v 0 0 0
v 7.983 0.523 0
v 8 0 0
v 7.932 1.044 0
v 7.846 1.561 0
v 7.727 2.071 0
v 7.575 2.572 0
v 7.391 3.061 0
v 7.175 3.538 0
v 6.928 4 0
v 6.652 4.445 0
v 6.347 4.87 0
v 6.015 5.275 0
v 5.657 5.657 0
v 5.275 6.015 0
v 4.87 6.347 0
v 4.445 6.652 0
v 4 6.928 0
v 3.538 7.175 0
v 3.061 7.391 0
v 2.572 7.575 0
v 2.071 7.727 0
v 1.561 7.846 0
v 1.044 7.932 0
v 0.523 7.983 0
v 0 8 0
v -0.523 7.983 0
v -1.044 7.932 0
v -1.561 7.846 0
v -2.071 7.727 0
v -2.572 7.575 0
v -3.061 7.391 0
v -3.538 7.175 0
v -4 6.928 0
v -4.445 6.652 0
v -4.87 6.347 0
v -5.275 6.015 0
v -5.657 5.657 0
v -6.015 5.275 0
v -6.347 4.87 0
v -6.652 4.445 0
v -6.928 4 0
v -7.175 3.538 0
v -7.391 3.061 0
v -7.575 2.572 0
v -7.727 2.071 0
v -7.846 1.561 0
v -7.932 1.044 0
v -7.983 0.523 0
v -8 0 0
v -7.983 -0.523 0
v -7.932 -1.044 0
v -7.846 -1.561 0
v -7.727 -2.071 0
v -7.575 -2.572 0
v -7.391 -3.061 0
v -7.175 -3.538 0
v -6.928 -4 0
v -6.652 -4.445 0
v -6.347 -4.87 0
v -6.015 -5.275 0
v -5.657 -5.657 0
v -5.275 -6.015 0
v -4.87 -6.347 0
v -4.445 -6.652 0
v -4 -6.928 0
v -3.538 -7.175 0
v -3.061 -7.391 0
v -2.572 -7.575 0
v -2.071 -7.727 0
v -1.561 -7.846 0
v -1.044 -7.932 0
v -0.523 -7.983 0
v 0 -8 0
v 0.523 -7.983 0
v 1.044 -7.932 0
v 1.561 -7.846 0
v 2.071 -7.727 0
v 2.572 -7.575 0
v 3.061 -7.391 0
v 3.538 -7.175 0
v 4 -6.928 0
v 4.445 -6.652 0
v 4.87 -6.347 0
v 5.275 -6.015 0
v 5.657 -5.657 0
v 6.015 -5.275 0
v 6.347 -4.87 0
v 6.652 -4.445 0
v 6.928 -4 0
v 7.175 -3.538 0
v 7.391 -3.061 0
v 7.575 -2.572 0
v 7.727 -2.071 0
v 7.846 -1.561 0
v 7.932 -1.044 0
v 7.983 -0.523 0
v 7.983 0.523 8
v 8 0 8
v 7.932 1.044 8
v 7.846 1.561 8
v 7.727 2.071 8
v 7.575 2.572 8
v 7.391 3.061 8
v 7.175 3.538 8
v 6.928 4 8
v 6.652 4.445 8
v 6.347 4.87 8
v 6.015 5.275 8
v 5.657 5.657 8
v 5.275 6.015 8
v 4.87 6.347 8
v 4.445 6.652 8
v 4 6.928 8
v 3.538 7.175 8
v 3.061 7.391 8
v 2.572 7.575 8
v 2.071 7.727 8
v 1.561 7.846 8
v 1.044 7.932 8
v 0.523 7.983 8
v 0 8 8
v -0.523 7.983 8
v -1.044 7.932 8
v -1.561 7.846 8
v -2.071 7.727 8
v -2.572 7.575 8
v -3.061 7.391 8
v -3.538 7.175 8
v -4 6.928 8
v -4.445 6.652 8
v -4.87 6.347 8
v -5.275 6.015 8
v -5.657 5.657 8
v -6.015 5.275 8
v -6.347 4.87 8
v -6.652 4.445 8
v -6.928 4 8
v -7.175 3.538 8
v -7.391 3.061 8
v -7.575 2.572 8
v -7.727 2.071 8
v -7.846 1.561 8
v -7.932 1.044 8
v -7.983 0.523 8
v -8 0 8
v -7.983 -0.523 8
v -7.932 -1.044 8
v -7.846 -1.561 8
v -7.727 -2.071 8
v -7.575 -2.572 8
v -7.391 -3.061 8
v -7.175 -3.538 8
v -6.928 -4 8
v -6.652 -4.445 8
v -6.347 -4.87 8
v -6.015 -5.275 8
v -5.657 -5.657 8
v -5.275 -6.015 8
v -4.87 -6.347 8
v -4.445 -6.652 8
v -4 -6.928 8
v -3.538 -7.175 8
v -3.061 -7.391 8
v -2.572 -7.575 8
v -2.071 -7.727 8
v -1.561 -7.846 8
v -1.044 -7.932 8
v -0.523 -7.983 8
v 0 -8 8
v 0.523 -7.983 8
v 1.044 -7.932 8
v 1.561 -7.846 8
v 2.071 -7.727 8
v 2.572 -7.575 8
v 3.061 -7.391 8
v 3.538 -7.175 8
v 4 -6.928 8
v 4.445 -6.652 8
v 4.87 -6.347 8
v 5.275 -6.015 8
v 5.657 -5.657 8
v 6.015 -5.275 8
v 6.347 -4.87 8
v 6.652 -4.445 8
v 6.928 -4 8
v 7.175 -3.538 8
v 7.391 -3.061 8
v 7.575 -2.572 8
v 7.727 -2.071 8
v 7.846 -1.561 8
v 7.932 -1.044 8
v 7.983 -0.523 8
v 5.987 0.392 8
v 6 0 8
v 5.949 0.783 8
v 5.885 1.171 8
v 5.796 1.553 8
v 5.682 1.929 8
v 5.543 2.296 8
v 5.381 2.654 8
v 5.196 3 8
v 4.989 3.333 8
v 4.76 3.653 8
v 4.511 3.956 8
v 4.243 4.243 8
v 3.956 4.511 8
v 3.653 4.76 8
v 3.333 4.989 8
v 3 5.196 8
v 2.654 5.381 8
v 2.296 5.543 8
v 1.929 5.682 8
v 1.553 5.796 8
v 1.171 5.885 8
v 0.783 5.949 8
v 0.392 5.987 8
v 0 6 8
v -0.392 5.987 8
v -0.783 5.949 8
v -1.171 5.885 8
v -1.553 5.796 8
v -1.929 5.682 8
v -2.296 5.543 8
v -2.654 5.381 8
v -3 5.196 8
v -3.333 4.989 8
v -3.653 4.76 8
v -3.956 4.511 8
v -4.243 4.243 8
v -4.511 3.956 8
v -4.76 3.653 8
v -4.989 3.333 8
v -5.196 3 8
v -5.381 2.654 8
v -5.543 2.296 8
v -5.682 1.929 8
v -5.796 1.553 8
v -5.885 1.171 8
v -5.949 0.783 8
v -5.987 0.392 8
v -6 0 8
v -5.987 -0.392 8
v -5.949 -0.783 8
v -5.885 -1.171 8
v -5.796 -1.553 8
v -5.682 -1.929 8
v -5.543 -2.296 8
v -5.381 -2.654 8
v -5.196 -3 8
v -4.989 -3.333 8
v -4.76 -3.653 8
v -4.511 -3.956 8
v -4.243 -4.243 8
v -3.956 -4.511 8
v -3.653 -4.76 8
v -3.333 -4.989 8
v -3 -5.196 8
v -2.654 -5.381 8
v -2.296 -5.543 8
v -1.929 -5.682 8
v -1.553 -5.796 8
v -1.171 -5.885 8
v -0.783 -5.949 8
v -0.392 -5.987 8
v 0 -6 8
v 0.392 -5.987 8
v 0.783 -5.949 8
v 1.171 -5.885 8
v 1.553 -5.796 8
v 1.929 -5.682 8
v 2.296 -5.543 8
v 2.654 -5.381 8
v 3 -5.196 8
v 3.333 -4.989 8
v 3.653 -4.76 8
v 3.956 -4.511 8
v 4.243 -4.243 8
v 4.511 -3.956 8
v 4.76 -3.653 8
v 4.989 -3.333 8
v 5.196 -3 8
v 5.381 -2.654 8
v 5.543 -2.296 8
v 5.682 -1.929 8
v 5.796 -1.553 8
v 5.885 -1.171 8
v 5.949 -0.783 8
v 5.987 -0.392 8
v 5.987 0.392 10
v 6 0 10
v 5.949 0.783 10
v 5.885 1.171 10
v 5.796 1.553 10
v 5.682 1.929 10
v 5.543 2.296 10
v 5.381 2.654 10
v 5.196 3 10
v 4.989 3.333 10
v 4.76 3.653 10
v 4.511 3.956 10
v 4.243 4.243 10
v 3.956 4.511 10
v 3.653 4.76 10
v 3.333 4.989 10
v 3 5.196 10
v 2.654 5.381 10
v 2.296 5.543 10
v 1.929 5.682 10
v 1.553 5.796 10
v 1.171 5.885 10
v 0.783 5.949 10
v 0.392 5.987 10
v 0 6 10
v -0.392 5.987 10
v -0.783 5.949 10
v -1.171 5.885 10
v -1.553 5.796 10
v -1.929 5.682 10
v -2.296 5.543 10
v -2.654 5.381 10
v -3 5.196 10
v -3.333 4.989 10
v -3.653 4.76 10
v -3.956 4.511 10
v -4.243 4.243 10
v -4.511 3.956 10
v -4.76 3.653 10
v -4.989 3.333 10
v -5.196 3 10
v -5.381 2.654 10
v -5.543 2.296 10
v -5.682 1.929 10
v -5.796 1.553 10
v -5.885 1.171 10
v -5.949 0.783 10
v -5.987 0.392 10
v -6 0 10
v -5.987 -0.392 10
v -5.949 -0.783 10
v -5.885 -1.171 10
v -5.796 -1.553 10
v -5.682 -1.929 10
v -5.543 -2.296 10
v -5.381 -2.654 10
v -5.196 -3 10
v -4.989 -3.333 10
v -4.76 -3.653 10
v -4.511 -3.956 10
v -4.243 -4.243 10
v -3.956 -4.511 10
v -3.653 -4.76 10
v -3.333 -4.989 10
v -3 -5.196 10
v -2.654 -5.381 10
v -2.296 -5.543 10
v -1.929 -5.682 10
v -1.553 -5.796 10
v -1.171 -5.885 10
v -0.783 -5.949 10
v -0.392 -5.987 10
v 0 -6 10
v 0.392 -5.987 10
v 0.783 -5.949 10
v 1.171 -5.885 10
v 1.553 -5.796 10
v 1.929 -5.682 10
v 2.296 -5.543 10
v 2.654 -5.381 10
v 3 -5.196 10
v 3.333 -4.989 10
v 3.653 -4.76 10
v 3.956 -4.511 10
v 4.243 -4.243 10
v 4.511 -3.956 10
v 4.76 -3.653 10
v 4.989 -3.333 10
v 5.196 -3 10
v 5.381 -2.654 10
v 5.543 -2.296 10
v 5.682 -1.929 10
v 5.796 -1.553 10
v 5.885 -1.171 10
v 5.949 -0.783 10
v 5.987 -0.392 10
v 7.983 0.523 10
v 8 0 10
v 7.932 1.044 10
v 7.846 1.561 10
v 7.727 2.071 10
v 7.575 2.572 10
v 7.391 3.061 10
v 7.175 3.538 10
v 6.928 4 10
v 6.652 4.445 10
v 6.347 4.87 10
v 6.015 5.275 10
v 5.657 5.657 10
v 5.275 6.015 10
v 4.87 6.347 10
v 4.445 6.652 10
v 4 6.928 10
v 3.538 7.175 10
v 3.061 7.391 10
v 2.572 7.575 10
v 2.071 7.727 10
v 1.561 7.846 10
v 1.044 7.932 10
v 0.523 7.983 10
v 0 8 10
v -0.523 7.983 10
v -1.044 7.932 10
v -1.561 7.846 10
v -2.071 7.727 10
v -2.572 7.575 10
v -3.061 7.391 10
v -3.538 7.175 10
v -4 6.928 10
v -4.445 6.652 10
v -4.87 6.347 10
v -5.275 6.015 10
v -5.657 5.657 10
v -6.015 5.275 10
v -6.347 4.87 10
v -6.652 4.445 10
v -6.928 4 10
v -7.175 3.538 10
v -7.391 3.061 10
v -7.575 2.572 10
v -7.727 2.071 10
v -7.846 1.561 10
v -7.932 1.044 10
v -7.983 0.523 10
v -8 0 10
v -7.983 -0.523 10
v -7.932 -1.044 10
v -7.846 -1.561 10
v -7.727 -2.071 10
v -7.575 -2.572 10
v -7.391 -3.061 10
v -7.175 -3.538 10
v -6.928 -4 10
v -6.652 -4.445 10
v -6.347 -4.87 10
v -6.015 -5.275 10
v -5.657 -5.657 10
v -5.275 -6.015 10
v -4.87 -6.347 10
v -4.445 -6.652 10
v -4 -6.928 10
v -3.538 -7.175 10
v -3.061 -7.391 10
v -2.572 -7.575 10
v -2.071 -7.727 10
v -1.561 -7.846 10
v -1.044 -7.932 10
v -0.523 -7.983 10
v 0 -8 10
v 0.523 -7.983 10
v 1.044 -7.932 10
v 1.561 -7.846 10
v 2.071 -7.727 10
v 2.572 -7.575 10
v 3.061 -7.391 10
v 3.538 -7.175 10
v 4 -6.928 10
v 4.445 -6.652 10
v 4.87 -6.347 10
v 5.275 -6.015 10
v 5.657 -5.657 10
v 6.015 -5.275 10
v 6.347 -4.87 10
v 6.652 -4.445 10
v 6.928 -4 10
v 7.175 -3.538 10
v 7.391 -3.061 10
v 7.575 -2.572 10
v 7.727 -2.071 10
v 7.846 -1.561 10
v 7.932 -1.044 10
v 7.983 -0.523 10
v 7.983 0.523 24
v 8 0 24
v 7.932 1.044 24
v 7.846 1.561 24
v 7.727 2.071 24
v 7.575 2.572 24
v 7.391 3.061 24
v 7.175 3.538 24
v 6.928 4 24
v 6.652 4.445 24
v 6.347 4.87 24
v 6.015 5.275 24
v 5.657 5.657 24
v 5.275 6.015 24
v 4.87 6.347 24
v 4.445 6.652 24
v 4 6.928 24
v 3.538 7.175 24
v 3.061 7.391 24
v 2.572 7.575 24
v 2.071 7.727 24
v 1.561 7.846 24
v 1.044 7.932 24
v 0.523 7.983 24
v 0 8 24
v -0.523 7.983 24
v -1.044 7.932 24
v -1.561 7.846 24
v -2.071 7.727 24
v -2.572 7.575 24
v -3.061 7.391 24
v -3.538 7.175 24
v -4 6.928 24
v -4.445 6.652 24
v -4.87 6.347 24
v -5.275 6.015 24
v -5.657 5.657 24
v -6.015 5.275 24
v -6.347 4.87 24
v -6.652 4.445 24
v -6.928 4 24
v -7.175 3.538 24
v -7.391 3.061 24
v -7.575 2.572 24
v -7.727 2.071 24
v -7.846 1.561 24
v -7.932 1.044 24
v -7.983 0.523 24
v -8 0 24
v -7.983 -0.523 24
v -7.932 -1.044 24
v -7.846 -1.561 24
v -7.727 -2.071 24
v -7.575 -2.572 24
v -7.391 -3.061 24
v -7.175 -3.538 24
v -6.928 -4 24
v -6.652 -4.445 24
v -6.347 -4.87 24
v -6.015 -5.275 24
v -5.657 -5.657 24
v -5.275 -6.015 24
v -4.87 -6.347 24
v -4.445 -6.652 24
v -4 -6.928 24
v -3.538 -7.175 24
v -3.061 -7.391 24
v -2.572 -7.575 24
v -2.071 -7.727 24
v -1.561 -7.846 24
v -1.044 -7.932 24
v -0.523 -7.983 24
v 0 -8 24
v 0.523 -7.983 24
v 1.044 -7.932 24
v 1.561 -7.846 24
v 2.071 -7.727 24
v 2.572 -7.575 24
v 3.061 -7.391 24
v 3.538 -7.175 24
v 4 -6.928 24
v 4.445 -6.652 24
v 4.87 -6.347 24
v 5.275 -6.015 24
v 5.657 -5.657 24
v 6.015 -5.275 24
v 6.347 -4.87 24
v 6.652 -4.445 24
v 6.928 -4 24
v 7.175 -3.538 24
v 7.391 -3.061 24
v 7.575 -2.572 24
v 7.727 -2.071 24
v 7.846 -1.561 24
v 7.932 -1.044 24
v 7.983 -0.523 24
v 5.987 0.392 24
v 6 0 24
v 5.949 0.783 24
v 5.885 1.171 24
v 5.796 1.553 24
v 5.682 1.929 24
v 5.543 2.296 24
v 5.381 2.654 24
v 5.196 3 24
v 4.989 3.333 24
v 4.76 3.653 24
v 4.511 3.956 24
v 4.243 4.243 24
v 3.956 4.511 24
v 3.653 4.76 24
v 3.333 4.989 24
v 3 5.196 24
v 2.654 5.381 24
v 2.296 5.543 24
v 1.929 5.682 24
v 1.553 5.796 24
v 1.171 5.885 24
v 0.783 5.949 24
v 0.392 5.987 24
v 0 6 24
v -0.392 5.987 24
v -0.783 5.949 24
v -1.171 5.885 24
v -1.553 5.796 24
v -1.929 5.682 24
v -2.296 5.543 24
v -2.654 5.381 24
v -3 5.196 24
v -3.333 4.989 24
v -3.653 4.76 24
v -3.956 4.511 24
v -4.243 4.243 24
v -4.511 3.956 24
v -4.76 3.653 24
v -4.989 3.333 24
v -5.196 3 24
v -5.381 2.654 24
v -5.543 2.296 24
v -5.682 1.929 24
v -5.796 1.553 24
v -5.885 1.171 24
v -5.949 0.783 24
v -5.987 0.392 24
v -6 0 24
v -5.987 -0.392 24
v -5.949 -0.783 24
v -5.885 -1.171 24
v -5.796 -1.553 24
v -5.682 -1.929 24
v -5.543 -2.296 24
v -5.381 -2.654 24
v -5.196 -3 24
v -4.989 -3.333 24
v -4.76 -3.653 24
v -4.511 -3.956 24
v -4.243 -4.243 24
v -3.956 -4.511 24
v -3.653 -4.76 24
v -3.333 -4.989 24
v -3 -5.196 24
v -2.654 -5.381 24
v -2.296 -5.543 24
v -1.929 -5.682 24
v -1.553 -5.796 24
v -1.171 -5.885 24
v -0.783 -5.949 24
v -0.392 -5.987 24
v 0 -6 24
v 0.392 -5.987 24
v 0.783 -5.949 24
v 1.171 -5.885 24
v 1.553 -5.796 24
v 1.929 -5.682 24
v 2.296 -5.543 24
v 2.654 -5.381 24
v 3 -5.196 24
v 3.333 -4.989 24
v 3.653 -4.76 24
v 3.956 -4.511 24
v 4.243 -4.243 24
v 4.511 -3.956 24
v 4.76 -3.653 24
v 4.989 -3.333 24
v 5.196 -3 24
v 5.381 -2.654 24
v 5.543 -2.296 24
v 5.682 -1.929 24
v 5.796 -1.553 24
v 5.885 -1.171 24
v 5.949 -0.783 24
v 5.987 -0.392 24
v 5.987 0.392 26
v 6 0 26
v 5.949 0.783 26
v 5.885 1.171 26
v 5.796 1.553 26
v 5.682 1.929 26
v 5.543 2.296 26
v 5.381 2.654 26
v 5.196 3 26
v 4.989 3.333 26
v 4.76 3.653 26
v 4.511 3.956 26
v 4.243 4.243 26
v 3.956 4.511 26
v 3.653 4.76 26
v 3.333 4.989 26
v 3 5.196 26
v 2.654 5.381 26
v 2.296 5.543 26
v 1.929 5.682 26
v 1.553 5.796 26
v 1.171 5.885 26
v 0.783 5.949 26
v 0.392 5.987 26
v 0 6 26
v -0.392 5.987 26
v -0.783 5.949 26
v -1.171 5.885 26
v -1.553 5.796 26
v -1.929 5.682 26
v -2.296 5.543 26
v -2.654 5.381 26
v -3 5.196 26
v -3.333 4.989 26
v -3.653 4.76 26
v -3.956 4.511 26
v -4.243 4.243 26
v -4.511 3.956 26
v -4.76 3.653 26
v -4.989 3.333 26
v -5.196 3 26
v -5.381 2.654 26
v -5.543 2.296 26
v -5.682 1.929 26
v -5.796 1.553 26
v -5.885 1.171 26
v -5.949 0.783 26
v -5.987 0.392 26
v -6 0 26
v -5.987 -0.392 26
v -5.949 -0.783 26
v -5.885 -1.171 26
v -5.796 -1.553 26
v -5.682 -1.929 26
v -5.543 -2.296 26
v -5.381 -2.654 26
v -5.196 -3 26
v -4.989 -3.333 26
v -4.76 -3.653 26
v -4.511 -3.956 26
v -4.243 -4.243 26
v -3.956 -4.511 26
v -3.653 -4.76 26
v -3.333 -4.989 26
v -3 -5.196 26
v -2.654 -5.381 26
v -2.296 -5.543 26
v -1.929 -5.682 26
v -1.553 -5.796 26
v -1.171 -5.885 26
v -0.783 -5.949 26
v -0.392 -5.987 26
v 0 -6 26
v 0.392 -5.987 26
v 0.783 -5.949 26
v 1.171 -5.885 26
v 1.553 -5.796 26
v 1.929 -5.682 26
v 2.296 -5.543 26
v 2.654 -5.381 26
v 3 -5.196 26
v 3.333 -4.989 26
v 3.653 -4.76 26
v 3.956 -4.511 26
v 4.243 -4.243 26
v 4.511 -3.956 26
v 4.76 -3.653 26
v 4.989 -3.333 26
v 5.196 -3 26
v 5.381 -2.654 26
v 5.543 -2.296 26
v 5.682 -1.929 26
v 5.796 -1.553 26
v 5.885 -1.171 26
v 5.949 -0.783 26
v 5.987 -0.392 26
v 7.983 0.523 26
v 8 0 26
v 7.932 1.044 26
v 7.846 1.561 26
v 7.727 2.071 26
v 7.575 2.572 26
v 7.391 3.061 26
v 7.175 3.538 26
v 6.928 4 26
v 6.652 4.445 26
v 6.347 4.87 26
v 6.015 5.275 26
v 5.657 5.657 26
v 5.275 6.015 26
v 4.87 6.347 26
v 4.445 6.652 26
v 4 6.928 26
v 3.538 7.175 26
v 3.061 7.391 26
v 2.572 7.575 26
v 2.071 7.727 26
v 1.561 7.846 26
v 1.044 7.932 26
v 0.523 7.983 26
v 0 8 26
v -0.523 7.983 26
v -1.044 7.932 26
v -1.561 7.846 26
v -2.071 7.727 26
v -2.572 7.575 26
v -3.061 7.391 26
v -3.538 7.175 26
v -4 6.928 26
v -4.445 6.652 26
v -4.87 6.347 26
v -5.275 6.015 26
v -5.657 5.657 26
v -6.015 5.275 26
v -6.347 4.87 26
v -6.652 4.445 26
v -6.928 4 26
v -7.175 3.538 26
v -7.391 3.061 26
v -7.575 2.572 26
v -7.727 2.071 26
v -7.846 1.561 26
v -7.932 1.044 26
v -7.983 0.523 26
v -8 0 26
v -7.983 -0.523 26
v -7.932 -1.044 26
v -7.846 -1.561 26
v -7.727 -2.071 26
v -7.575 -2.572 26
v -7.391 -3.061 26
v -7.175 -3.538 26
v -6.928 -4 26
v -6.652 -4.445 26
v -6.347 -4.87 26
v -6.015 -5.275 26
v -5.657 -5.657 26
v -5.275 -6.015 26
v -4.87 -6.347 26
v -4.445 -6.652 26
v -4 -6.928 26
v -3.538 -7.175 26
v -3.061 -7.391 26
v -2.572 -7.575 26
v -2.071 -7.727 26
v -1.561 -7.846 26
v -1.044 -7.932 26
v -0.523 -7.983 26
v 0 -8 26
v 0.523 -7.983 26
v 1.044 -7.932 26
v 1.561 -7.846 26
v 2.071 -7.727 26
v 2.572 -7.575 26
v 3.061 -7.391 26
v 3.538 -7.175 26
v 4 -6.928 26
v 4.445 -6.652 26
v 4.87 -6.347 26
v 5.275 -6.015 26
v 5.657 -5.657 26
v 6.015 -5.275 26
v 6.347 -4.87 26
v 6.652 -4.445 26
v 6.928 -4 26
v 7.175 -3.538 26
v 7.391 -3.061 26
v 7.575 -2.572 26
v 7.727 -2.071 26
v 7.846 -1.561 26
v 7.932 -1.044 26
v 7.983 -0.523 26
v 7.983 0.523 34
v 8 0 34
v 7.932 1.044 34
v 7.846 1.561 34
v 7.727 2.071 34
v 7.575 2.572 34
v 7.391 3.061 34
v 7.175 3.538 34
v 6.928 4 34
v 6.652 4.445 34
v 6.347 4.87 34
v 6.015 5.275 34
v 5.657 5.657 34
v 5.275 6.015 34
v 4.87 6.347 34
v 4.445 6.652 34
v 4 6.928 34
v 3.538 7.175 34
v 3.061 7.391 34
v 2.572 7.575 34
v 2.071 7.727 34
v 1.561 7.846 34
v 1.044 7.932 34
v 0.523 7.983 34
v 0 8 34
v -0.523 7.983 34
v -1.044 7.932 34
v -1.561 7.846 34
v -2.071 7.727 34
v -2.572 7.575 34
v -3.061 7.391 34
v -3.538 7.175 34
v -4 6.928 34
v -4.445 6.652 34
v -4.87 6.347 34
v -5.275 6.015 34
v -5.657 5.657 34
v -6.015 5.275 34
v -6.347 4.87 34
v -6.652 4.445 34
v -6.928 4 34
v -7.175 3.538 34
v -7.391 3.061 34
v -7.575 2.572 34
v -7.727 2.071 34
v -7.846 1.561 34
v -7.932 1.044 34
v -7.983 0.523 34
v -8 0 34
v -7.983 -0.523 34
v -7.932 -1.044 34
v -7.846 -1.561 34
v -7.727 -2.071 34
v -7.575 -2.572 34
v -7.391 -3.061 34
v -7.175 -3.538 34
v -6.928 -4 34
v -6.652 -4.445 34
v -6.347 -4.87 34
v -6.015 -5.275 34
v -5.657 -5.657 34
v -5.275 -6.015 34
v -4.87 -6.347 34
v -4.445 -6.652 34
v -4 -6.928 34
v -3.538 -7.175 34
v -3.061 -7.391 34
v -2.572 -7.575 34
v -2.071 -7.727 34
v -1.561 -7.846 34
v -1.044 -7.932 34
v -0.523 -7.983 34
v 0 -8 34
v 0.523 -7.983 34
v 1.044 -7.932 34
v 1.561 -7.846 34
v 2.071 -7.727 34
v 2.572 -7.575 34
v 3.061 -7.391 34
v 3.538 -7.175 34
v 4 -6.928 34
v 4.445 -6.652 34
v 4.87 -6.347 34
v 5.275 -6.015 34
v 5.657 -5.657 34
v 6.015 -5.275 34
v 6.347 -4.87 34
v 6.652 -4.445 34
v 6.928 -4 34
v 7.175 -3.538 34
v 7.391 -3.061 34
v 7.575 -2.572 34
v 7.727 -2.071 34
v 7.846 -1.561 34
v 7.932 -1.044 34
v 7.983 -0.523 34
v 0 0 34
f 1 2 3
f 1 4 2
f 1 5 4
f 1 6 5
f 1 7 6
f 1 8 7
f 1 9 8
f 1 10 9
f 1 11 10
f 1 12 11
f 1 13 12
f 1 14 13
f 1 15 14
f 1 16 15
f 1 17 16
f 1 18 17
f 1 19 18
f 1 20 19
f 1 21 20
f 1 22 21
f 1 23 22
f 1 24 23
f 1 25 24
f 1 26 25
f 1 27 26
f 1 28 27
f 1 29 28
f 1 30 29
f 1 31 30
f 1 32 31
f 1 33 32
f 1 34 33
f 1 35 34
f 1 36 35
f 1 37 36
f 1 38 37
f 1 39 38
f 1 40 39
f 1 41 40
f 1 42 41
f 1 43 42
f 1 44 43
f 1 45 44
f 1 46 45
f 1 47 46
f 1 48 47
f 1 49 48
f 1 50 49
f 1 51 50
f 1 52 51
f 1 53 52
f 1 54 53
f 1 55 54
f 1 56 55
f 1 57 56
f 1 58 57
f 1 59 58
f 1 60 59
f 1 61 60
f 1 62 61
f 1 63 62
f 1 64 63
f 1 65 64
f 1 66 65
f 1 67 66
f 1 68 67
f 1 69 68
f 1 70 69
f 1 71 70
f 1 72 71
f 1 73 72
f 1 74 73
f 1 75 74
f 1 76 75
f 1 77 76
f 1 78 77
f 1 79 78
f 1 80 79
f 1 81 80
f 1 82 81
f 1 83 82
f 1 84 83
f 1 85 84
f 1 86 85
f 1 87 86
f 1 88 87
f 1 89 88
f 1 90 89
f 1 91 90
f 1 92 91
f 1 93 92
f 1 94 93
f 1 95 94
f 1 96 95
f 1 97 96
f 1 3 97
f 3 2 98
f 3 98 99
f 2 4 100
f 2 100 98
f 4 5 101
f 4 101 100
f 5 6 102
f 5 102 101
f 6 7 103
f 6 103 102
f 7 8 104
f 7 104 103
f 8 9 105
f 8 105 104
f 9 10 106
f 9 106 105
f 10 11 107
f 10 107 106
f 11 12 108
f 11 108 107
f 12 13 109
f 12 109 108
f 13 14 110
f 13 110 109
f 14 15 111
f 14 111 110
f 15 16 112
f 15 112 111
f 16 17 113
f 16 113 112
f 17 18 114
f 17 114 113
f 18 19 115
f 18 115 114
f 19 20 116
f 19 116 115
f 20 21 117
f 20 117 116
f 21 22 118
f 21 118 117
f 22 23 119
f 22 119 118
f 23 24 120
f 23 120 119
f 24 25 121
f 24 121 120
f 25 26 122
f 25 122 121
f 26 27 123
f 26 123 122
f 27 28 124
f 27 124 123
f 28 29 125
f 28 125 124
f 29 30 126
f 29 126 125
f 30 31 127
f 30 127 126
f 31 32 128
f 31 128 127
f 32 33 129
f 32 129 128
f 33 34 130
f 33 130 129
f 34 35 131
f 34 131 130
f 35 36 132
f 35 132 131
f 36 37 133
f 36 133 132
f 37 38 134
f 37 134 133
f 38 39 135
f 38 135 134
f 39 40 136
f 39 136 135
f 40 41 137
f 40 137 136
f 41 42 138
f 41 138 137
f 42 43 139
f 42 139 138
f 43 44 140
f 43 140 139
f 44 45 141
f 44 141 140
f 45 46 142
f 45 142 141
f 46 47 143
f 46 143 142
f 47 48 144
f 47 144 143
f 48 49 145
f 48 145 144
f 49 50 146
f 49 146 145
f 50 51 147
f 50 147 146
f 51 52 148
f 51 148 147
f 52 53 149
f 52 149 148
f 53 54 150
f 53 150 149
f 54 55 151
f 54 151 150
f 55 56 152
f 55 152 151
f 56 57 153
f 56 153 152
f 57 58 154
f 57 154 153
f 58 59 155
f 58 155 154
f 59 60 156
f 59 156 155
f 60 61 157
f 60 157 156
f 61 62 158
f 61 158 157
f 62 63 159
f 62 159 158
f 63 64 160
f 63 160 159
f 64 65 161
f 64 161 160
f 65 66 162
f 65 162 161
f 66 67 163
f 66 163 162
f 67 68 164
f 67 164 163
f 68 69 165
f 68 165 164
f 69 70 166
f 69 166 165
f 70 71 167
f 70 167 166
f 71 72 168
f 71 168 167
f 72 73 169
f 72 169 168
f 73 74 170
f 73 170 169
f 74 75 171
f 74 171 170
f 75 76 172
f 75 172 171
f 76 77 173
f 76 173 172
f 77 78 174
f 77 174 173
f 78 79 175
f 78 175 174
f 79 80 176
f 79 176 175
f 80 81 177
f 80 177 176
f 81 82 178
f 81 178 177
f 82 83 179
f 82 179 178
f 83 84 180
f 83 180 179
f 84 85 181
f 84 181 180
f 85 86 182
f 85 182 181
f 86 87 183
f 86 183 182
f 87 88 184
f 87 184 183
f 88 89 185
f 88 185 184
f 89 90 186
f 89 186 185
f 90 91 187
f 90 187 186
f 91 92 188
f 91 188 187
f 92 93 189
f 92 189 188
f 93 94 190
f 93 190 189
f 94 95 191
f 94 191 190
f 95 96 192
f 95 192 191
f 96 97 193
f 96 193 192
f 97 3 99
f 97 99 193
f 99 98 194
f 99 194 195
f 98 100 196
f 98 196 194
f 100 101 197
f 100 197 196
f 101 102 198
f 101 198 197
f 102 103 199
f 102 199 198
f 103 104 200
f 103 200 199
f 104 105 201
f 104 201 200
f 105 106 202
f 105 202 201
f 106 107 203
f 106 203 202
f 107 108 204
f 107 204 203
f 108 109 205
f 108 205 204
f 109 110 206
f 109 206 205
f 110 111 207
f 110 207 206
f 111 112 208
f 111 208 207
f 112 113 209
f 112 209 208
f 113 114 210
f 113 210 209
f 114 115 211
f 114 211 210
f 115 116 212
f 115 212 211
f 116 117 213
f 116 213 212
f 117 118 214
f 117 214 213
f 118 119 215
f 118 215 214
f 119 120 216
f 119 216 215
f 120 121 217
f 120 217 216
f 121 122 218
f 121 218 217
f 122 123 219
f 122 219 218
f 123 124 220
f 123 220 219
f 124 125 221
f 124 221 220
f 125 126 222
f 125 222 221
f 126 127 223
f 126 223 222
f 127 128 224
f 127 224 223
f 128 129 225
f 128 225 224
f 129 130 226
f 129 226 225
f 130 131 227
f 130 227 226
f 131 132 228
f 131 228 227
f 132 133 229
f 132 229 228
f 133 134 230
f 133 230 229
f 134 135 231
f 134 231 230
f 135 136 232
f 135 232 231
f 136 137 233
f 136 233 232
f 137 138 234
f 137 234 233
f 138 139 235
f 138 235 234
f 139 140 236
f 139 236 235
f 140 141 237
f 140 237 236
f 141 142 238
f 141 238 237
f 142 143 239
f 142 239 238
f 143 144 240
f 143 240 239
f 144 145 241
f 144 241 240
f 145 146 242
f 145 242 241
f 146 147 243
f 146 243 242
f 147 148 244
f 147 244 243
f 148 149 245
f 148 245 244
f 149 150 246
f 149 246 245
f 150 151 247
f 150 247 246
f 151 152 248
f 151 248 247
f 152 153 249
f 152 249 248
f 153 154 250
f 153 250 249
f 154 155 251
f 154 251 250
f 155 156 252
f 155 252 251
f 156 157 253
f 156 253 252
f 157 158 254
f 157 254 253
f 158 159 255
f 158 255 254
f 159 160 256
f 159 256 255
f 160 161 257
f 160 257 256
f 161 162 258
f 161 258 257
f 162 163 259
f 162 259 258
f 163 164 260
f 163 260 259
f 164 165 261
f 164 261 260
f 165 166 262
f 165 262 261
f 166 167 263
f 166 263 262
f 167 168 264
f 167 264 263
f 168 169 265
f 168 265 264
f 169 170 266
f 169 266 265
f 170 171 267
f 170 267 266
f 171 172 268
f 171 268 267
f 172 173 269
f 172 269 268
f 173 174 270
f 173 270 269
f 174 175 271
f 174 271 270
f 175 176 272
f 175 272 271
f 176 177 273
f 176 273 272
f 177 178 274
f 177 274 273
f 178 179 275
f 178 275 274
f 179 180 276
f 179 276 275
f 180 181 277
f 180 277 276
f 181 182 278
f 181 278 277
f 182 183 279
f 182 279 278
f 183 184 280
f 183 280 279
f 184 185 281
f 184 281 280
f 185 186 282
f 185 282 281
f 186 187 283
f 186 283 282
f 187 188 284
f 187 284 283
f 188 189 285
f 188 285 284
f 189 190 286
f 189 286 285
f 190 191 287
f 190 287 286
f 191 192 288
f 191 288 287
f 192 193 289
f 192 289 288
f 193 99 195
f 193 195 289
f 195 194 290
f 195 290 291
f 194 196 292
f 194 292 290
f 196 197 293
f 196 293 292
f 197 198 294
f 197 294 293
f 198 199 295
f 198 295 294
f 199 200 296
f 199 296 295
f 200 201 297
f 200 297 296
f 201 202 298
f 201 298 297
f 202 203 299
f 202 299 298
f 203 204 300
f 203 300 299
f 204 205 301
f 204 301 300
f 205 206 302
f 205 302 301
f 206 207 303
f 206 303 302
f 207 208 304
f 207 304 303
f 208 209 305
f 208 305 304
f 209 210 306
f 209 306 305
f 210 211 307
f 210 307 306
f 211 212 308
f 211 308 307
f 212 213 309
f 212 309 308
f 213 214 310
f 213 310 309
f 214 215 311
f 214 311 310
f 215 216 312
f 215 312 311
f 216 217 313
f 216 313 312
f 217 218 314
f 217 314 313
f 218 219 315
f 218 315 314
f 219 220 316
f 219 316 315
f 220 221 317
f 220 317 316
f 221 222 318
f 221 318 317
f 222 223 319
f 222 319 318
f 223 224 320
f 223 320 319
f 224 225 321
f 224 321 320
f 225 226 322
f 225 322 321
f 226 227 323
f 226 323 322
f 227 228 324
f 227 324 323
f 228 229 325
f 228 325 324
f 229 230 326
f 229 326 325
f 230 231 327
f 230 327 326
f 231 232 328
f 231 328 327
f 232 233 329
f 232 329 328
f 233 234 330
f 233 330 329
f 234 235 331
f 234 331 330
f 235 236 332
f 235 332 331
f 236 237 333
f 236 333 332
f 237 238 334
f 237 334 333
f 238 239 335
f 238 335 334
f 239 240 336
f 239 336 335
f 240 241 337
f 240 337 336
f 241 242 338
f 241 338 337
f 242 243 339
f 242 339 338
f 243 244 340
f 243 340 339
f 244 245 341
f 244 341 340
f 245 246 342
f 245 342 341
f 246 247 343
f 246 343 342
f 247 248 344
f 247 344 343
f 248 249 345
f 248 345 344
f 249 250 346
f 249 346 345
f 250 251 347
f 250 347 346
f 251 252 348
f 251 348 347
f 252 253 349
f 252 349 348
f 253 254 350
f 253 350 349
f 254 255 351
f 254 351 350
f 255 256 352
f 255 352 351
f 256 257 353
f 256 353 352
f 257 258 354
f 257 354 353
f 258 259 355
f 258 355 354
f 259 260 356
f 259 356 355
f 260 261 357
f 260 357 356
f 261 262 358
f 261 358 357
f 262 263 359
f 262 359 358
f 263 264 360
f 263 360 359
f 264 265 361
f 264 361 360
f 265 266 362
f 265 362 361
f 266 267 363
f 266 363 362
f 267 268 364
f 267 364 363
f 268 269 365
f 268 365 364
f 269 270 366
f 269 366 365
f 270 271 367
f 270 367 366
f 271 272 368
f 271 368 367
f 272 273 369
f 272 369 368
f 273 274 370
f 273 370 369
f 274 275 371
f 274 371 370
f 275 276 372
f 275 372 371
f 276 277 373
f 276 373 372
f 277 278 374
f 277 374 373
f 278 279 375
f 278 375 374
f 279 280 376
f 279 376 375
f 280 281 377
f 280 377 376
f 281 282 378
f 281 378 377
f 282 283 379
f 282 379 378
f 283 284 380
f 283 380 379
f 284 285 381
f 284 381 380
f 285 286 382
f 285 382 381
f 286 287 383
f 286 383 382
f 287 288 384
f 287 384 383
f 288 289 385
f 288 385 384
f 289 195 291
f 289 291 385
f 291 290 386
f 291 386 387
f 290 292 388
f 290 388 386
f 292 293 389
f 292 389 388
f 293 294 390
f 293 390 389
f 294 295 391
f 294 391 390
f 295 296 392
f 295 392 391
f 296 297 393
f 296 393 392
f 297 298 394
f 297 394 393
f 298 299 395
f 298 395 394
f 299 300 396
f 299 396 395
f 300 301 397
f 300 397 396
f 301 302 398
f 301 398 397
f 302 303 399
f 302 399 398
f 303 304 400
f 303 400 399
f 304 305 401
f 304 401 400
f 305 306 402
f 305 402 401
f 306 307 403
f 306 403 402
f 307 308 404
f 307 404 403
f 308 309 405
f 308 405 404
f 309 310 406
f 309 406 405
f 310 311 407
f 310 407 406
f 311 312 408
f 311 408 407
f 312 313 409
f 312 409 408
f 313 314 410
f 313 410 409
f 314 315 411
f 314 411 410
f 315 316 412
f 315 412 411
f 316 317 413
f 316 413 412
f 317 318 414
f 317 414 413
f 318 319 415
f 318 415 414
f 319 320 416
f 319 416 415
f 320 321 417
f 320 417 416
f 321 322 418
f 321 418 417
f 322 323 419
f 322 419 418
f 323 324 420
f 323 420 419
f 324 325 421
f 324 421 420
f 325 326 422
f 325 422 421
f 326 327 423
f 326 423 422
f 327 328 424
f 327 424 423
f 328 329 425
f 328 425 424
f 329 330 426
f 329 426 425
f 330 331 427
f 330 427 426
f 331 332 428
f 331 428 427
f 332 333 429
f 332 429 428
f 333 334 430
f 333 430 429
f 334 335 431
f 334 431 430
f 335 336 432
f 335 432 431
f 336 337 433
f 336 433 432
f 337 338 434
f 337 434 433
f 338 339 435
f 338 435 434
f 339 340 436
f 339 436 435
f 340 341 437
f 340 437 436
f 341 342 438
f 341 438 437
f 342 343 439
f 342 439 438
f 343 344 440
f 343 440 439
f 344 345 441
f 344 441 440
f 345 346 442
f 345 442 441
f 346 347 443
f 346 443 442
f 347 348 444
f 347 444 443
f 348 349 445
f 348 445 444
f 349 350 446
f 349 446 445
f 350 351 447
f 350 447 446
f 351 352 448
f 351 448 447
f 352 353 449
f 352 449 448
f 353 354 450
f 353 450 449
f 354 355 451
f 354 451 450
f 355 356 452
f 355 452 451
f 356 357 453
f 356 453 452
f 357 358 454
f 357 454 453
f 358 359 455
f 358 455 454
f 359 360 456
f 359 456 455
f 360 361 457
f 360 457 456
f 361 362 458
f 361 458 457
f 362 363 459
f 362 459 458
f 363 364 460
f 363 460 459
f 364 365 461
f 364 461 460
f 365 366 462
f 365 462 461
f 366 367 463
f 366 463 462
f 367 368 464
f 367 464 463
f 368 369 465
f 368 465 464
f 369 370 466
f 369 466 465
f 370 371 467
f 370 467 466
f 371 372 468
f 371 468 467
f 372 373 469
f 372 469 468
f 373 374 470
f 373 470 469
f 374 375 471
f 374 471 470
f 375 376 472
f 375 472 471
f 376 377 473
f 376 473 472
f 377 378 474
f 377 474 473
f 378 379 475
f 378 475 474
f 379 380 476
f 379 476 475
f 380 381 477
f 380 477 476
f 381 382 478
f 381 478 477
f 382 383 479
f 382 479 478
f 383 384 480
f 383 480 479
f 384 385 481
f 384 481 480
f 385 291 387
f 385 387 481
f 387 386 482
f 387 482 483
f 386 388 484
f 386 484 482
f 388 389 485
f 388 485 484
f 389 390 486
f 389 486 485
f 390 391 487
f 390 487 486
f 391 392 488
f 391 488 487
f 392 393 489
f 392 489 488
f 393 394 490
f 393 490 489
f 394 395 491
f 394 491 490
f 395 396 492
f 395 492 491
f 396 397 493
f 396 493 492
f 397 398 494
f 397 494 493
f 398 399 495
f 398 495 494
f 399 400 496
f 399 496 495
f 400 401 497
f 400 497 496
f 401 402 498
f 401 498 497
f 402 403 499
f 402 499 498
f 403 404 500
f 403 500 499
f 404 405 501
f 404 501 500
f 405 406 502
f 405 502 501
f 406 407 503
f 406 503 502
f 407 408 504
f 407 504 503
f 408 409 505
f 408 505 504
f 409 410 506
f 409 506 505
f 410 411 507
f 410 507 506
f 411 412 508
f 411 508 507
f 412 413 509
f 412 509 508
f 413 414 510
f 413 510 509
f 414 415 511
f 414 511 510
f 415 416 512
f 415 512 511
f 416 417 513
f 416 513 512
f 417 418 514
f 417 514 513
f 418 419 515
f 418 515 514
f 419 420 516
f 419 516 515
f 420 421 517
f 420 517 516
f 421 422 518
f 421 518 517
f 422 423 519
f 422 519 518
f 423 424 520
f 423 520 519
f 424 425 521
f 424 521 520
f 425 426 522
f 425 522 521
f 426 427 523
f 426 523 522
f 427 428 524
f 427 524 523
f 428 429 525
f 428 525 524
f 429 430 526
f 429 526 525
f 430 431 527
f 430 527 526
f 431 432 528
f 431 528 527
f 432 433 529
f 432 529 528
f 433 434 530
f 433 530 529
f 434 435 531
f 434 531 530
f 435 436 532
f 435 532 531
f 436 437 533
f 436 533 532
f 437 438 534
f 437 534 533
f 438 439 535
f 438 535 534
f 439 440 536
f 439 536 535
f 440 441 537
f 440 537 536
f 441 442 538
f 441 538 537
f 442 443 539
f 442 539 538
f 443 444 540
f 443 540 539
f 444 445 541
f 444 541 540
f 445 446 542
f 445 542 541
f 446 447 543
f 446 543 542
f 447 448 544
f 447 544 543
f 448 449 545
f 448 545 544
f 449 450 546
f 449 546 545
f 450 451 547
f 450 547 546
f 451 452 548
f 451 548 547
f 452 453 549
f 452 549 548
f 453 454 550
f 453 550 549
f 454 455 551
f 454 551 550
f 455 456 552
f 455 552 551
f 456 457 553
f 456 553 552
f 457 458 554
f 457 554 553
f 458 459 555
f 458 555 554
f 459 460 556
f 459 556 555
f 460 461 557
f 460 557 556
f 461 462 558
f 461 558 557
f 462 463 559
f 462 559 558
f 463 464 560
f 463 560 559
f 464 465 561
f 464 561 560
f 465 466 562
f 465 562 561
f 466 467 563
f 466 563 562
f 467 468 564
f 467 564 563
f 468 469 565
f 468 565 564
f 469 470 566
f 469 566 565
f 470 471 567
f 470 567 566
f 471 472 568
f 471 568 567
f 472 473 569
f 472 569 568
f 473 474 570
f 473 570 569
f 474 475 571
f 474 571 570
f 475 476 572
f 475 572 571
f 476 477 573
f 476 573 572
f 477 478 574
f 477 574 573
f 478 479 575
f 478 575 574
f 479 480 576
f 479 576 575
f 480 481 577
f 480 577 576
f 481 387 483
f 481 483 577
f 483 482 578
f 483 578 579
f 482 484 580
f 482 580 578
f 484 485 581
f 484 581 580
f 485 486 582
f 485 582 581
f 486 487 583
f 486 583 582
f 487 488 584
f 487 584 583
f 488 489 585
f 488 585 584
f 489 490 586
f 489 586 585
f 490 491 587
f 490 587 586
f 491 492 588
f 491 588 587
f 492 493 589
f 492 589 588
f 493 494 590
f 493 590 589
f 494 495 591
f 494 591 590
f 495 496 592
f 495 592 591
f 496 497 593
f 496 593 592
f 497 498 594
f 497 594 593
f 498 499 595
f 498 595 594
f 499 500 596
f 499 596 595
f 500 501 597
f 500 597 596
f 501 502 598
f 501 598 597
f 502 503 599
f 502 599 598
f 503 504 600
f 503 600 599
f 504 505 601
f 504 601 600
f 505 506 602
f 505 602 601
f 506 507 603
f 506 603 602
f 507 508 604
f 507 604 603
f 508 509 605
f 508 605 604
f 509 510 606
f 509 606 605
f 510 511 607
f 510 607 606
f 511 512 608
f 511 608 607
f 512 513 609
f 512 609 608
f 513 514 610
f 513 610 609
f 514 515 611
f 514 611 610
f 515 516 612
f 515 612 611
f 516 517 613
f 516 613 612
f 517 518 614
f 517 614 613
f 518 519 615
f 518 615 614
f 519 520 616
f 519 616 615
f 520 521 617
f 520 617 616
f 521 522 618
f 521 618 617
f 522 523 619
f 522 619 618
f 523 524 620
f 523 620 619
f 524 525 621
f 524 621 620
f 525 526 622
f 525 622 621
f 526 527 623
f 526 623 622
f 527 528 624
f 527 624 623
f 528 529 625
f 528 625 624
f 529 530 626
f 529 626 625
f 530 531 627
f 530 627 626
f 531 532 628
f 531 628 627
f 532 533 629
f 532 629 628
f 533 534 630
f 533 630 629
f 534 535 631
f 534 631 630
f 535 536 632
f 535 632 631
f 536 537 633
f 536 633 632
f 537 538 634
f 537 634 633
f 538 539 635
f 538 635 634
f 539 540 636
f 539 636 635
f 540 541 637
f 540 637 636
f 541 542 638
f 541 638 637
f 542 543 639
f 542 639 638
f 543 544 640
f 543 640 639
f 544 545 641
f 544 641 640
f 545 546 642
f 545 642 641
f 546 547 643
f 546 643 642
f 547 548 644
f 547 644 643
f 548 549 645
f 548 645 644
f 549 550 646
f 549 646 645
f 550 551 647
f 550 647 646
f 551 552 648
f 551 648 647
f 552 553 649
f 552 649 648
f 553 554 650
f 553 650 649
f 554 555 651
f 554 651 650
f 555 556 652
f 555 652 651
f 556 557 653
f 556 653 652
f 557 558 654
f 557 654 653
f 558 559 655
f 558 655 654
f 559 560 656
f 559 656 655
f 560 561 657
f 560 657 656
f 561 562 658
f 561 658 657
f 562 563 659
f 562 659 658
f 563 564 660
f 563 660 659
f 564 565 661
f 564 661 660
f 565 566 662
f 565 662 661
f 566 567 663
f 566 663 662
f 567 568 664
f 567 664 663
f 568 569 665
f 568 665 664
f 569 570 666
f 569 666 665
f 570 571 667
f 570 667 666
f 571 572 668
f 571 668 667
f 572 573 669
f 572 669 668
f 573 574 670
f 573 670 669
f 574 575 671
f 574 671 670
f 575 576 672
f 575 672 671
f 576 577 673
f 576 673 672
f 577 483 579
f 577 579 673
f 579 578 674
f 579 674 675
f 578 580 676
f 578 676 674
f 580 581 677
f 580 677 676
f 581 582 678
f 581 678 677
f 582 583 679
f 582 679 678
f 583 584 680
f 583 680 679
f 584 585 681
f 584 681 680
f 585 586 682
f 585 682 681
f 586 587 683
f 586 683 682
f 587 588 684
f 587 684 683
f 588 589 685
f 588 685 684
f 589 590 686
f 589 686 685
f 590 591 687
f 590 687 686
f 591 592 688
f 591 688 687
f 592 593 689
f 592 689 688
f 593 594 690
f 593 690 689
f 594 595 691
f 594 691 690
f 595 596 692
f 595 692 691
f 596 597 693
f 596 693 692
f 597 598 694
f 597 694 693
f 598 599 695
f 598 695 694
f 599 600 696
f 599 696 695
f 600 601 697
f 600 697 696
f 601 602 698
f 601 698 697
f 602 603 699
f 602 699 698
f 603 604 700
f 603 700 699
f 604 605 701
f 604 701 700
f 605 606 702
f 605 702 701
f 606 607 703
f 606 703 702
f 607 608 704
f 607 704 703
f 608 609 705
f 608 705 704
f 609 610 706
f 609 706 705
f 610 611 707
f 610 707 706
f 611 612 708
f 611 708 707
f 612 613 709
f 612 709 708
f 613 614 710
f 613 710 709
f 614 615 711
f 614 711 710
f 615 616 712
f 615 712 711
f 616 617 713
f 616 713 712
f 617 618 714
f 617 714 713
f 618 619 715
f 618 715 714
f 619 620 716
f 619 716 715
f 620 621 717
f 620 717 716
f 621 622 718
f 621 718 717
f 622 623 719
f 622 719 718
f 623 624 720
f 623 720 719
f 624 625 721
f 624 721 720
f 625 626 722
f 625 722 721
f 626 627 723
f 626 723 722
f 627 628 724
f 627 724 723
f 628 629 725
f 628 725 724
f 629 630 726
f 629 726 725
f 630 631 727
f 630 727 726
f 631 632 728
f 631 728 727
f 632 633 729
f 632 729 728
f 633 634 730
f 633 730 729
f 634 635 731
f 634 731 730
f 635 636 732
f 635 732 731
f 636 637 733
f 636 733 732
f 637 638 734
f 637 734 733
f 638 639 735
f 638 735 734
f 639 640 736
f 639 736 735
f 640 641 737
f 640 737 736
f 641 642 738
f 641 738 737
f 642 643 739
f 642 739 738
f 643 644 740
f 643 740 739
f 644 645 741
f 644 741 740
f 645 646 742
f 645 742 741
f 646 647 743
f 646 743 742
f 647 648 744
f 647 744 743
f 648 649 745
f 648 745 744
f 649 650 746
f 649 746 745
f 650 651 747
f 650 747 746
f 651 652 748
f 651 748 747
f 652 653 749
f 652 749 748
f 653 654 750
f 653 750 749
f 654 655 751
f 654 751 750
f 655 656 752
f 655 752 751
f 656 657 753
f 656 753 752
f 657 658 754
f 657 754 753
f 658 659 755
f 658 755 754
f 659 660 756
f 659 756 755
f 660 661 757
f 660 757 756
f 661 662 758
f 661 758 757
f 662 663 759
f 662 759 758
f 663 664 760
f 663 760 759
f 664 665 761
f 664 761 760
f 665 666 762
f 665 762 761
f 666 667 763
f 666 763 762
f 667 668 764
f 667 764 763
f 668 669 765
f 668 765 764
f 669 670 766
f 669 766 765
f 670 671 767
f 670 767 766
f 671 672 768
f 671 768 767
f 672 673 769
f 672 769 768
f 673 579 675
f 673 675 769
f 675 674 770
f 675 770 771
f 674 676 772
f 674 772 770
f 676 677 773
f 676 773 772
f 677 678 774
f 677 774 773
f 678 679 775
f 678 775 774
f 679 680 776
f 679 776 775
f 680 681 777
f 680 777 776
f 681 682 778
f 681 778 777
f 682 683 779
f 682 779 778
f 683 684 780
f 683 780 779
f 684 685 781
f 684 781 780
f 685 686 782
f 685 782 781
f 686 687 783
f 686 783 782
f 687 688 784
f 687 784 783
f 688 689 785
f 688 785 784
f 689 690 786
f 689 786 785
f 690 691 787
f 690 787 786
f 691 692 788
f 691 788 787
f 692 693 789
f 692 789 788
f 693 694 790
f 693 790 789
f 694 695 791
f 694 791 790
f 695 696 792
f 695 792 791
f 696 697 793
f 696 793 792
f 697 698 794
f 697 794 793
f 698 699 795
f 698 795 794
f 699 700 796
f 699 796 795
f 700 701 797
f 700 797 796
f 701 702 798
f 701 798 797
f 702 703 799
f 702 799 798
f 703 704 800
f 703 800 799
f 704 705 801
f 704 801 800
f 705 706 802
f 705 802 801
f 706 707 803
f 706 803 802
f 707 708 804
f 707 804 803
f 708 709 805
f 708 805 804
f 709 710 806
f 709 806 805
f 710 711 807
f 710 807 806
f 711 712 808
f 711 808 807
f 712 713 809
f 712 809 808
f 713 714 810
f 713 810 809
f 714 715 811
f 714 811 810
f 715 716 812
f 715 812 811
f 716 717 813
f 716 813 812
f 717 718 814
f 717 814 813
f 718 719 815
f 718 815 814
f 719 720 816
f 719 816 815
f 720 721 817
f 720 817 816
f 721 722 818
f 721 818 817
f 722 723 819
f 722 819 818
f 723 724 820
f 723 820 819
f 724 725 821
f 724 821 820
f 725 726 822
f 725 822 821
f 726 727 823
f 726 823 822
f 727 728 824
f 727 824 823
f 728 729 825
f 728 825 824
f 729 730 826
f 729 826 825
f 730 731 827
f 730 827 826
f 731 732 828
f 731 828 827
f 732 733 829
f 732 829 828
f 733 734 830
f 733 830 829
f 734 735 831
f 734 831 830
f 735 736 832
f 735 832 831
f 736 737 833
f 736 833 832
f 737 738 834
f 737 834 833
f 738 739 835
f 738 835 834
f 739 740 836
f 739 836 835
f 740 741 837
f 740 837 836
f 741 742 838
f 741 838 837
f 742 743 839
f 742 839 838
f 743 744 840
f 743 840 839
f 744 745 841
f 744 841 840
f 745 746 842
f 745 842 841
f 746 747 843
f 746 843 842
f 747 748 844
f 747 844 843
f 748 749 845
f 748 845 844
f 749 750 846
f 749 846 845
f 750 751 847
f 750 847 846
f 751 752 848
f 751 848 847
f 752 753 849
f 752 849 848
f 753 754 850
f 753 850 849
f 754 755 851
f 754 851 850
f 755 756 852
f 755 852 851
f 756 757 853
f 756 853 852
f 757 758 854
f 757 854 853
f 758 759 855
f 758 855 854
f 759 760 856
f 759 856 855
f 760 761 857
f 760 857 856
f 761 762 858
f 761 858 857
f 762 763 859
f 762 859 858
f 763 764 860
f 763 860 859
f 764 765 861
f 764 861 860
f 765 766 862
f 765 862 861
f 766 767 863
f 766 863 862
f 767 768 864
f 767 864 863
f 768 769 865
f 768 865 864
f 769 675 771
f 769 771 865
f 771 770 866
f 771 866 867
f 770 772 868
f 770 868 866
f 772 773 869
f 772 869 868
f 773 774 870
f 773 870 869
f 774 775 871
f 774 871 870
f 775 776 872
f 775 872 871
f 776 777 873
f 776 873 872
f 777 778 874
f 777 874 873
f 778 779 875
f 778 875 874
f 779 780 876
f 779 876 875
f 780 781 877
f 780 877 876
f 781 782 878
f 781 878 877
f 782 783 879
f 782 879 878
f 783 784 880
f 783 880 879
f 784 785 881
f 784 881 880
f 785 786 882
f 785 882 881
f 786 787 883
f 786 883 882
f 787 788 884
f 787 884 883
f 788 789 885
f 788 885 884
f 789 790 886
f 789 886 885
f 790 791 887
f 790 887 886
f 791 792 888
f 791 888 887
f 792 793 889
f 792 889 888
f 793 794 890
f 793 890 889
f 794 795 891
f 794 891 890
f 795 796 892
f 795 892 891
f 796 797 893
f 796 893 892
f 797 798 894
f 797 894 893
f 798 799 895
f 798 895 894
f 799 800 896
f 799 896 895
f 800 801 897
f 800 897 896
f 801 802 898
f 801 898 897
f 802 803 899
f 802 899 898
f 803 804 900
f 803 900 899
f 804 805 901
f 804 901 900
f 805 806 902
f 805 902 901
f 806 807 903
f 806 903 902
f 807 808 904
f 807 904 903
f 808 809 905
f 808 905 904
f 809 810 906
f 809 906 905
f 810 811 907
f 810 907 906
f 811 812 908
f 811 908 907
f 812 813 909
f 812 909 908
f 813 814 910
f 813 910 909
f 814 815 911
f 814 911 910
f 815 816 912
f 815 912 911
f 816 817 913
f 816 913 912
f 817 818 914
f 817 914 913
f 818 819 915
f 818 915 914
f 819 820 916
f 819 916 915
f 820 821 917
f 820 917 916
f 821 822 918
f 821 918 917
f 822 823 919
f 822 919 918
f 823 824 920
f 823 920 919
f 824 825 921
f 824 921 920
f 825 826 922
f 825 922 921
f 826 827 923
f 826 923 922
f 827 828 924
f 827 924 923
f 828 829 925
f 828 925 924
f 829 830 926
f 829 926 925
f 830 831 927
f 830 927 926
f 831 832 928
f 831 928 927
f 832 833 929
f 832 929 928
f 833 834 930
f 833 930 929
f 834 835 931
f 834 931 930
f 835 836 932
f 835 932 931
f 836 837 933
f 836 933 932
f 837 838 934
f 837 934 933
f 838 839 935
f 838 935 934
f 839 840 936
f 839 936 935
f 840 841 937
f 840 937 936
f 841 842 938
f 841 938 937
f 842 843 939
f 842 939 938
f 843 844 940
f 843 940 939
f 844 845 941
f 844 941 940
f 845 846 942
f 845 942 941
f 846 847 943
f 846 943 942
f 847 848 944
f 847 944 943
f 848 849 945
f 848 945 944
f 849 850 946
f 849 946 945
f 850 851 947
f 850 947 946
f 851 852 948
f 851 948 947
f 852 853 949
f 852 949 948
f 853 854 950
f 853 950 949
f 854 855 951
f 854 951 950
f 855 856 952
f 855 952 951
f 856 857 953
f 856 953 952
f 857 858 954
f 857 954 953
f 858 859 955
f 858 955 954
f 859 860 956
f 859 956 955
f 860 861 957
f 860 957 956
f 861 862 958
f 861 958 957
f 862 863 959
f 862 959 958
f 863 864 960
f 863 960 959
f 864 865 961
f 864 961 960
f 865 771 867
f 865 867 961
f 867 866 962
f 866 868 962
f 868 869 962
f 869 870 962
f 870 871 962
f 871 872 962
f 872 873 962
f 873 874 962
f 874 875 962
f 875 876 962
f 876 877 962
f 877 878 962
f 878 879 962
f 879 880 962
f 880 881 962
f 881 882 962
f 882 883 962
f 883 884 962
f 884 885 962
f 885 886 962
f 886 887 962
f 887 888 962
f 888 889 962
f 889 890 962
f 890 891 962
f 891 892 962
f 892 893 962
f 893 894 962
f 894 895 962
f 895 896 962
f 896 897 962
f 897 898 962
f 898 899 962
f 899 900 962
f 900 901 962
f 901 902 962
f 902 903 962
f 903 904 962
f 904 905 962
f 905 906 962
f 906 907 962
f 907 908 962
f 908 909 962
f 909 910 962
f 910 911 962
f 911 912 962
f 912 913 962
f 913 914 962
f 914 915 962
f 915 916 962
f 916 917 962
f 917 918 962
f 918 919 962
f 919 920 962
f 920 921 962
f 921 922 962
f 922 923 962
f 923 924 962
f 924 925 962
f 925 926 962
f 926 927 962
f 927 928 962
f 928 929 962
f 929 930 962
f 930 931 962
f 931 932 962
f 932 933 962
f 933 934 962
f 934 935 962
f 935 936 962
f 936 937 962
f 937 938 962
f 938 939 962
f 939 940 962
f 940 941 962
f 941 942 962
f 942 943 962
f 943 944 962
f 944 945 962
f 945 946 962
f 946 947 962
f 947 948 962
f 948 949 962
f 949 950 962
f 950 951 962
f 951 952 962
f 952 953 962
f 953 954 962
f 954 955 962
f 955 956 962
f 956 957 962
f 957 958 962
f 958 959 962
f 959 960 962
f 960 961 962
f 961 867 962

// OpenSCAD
// Original MechIntel educational model. CC0-1.0. Units: mm.
// Not a standardized or load-rated component.
$fn=96;
// Section points: [radius, height], mm. Edit to change the profile.
section=[[0, 0], [8, 0], [8, 8], [6, 8], [6, 10], [8, 10], [8, 24], [6, 24], [6, 26], [8, 26], [8, 34], [0, 34]];
rotate_extrude($fn=96) polygon(points=section);
